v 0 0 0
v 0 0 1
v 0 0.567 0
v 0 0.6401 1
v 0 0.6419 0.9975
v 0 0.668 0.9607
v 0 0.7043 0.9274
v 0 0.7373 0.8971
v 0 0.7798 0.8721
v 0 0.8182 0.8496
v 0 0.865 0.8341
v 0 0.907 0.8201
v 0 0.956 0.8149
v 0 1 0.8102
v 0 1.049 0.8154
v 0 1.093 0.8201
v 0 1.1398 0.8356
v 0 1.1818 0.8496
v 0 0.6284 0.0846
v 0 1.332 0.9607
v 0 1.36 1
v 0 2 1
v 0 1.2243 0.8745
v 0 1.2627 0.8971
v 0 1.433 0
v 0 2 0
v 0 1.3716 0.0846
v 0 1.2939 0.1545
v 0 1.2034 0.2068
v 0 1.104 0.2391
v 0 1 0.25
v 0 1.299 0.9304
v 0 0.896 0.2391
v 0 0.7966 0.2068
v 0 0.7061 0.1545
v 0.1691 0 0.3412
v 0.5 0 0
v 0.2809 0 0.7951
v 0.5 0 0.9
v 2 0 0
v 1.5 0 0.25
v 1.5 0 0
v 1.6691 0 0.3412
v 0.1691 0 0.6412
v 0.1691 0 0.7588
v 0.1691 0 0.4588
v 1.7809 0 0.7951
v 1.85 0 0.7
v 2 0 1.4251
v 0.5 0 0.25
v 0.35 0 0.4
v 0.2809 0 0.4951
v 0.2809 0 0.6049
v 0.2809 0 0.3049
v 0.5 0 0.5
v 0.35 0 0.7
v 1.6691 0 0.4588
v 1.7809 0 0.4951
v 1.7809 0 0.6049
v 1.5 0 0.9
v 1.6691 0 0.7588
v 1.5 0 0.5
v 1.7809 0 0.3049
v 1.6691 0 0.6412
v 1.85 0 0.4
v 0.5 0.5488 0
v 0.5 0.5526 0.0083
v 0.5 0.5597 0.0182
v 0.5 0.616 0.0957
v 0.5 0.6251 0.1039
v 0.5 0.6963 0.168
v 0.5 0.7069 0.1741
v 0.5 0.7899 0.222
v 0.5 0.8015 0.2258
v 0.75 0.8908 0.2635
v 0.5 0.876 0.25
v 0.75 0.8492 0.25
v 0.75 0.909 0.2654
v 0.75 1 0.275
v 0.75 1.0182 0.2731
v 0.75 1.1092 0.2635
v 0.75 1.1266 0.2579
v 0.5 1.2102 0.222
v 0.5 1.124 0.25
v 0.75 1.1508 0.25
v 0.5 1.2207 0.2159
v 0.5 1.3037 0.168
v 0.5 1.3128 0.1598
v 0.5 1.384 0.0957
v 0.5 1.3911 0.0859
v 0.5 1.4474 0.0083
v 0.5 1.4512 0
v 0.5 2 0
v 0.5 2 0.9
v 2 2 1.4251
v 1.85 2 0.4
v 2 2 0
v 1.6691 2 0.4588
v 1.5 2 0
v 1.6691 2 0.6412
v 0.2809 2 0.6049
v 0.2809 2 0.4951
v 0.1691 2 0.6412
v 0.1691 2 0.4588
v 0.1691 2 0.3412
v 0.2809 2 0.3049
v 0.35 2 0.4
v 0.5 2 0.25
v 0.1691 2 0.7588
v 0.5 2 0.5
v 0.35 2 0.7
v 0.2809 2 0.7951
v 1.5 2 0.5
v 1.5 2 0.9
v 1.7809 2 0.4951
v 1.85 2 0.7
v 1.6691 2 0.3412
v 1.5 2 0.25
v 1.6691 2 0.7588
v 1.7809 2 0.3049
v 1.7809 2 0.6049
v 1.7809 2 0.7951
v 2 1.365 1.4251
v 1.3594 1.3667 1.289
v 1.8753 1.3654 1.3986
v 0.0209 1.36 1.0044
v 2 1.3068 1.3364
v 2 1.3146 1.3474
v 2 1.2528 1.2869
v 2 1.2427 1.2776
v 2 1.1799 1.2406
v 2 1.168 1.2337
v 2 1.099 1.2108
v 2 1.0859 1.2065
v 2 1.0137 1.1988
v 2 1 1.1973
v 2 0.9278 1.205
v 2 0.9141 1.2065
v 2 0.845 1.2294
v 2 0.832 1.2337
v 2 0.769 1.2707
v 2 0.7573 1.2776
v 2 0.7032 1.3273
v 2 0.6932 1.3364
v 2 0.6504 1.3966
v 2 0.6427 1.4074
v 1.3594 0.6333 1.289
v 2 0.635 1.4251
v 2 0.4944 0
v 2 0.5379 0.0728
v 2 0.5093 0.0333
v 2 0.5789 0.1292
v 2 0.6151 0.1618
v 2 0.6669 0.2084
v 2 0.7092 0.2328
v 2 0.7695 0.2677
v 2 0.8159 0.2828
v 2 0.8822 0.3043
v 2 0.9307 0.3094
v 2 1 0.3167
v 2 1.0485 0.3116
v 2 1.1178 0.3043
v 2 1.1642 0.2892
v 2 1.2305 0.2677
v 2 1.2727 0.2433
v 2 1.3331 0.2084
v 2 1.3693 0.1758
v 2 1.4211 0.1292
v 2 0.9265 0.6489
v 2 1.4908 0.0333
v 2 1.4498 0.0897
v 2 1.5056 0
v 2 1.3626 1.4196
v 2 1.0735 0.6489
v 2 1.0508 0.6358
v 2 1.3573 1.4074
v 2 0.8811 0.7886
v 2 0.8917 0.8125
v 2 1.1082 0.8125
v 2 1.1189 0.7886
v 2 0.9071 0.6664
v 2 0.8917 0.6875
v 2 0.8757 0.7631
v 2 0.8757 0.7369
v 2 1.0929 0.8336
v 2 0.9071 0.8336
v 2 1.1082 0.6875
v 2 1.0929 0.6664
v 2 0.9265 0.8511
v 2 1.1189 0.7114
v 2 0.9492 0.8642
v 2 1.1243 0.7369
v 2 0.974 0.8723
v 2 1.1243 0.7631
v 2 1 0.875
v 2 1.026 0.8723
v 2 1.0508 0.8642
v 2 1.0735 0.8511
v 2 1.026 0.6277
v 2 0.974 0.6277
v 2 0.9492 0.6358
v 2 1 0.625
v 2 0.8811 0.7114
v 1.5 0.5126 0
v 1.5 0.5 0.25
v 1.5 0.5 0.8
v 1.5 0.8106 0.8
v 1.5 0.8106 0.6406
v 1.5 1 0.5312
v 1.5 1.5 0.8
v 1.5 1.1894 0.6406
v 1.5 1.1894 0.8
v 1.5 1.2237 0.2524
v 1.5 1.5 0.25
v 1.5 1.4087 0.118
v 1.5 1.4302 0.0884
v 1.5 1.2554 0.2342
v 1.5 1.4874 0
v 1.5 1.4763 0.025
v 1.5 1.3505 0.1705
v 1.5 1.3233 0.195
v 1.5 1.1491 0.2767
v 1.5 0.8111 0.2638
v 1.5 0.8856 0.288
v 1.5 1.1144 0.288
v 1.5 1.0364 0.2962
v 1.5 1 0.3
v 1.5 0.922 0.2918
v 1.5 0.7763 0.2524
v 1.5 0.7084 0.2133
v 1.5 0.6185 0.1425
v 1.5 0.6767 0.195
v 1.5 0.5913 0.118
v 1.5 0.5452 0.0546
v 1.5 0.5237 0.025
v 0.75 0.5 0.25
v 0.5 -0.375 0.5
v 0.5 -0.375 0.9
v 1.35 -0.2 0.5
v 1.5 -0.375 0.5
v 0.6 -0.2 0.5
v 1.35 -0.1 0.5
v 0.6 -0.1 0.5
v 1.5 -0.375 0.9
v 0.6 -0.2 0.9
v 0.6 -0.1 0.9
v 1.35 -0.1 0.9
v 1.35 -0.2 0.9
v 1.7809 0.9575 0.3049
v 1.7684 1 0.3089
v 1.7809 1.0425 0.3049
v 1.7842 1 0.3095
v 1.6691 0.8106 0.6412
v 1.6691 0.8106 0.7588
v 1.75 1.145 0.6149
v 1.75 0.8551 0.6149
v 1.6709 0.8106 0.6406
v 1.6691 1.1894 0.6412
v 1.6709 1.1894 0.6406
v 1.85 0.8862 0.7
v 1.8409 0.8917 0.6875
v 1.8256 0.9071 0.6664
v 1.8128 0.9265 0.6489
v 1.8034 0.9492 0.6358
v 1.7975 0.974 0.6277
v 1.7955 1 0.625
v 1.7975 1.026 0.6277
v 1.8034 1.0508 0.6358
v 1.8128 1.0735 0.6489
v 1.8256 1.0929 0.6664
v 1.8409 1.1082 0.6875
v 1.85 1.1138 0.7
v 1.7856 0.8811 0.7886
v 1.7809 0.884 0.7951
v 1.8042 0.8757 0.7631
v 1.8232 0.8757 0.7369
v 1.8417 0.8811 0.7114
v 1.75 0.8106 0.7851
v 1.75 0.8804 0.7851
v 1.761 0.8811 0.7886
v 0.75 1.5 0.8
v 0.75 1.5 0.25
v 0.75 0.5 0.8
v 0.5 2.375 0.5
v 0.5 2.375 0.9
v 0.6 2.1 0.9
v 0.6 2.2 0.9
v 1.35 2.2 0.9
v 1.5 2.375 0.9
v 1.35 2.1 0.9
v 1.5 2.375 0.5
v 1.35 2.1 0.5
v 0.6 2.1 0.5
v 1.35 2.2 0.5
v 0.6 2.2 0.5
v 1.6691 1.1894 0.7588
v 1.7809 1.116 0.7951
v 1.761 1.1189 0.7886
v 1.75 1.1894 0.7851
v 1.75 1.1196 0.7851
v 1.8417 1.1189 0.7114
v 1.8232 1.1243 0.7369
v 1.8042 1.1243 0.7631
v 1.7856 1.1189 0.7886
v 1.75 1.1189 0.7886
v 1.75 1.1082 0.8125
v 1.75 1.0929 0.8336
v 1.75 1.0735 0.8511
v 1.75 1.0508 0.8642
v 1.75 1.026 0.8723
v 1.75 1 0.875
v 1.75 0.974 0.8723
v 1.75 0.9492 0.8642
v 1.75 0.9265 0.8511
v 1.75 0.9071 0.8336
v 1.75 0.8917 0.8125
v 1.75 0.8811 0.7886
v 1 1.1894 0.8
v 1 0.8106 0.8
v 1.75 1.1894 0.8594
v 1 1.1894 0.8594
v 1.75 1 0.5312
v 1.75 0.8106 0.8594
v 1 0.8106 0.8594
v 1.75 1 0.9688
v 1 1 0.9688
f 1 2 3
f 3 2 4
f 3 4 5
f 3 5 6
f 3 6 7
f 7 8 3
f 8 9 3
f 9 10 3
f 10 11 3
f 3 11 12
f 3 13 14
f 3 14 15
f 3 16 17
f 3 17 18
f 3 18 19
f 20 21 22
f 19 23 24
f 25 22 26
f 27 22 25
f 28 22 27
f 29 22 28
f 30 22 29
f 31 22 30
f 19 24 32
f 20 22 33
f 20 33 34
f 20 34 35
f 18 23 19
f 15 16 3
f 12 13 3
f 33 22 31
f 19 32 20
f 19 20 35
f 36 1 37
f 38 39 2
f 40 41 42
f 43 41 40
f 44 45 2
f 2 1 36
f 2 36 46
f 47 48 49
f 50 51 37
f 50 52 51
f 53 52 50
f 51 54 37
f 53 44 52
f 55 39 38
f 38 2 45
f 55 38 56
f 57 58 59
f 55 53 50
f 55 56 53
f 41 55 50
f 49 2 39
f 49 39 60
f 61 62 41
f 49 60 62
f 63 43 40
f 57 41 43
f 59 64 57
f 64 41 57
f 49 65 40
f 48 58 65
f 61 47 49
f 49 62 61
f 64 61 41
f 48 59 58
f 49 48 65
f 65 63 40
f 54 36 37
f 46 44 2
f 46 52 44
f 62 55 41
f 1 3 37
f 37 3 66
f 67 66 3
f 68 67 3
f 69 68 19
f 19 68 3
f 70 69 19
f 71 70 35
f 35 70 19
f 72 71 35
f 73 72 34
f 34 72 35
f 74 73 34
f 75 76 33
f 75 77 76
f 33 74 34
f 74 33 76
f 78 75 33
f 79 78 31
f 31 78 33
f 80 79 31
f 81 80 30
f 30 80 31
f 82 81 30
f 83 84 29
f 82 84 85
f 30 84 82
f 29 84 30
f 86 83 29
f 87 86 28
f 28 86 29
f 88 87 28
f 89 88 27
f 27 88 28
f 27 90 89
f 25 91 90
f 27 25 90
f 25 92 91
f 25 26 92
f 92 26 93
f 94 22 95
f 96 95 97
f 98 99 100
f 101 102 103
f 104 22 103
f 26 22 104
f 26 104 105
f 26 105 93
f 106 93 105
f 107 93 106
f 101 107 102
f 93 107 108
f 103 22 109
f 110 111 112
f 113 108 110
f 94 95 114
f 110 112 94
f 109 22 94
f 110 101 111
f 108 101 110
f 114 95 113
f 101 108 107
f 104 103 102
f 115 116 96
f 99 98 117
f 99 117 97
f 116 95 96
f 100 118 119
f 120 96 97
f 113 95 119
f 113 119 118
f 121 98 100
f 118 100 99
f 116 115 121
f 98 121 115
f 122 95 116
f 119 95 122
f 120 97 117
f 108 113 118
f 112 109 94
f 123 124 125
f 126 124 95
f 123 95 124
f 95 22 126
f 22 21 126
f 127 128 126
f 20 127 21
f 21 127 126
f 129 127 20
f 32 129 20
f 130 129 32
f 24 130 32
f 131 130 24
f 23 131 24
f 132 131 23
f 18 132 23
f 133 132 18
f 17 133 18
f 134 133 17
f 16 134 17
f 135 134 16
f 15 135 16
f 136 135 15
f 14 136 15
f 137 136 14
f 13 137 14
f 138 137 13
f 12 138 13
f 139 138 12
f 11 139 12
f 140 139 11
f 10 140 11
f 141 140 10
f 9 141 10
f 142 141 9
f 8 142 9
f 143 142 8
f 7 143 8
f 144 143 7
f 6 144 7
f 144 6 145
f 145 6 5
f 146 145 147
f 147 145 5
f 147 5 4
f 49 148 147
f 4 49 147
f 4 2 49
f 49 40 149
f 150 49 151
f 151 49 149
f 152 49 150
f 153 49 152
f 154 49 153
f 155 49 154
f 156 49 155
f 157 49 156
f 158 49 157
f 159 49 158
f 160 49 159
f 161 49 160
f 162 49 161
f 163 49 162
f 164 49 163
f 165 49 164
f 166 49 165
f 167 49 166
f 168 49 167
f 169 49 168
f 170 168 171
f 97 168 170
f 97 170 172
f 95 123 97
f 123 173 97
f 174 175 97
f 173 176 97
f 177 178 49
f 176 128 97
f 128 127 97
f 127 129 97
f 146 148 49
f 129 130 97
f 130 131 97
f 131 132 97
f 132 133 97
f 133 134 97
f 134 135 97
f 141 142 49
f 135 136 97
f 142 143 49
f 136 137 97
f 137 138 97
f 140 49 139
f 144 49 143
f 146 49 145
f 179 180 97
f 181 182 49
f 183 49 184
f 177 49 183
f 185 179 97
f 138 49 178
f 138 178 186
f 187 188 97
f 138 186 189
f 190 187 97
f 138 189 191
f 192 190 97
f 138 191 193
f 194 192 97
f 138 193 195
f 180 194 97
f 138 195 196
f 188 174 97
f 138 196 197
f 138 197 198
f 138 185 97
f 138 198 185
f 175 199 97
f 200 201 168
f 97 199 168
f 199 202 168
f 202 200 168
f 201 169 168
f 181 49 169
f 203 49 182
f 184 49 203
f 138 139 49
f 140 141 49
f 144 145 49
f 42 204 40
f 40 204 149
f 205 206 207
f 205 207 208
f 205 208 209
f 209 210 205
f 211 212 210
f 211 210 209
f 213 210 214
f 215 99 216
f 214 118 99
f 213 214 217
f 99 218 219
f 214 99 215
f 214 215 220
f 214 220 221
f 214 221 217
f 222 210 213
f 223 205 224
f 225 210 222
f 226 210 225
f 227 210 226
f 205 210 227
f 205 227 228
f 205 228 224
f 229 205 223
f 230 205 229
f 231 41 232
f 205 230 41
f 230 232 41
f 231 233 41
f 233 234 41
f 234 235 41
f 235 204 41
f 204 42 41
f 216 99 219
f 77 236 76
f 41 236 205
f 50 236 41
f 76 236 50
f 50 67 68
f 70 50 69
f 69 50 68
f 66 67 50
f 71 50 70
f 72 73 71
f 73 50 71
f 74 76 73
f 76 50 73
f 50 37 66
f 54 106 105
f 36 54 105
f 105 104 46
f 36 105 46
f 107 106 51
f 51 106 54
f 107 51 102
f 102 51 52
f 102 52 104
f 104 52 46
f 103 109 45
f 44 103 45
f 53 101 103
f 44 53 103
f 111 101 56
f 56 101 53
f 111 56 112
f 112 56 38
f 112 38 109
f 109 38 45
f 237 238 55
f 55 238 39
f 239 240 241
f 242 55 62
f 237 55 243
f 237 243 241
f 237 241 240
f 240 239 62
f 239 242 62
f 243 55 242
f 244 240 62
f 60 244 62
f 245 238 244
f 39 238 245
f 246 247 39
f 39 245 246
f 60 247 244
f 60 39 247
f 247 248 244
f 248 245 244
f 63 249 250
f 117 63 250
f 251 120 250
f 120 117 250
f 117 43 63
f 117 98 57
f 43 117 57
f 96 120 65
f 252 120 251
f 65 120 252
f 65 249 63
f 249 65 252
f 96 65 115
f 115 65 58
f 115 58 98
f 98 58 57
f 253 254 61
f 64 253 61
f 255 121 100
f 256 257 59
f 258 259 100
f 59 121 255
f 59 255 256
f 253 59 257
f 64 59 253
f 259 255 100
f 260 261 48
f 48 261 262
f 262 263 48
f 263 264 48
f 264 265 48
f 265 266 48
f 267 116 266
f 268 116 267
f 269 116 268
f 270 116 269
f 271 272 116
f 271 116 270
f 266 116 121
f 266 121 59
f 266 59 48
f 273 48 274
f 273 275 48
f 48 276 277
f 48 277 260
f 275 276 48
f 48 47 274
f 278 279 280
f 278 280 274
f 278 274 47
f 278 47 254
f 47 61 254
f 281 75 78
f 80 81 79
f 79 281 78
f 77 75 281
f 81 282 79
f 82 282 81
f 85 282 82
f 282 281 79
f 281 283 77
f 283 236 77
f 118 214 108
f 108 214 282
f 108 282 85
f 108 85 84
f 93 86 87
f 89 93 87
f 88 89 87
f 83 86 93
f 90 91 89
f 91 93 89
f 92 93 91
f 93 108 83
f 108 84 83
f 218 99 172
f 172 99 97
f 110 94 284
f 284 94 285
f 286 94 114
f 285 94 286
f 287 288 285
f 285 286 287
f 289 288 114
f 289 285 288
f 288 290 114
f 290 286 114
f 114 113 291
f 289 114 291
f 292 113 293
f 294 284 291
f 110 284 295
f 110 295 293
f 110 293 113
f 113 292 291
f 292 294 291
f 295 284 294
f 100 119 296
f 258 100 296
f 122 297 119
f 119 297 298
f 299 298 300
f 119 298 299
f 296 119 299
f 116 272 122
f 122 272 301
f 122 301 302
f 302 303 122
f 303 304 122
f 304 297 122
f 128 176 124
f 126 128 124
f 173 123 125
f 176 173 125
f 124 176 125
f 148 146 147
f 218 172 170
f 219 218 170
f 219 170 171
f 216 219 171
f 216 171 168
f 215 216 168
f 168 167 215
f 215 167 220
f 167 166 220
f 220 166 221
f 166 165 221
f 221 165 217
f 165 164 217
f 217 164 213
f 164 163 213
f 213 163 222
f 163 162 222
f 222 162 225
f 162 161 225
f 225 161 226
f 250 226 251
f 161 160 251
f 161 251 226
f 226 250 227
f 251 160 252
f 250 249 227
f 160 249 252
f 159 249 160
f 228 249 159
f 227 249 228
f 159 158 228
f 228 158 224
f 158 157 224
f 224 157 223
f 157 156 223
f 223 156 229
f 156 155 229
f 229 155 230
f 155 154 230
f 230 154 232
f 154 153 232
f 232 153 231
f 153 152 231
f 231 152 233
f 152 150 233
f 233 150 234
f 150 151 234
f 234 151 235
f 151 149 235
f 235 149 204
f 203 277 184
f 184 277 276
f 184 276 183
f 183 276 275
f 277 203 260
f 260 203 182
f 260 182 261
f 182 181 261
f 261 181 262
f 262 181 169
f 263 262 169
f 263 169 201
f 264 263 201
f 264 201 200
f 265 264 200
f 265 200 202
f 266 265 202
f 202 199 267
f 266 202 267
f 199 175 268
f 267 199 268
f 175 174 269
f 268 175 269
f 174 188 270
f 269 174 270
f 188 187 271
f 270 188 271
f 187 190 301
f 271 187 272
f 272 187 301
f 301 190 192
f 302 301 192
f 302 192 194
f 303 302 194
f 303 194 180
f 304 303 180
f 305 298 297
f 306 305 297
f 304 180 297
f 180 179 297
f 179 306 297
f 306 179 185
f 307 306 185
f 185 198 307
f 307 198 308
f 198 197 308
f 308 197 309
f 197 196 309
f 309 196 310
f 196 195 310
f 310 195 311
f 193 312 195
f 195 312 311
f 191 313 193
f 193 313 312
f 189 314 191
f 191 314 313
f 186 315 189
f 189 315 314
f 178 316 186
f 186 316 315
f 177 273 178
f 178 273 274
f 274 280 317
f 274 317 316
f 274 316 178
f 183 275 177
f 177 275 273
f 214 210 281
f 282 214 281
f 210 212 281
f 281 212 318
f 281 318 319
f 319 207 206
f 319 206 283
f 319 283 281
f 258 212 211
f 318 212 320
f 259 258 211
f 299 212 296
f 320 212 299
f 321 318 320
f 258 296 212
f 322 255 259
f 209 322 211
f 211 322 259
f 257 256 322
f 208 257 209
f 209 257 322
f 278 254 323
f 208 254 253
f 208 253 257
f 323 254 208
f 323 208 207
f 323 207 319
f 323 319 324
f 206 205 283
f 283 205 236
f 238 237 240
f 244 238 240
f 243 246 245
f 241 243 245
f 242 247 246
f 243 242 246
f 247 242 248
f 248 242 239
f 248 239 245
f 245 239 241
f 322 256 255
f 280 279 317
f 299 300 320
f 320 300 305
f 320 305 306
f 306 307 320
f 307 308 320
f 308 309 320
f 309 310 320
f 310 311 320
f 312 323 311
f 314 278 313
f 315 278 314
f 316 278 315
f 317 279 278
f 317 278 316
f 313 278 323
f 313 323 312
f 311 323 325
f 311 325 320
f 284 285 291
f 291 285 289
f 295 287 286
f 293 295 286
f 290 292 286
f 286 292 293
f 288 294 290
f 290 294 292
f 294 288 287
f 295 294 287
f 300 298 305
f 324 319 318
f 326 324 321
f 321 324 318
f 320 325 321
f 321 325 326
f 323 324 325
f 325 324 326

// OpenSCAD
// Trying to be a trekking pole camera mount
// jellsworth Dec 2014
//
// units = inches



difference() {
	union(){
		// base block
		translate([0, 0, 0]) {
			cube([ 2, 2, 1.5 ], false);
		}

		// add strap supports
		difference() {
			// add strap base
			translate( [0.5, -0.375, 0.5]) {
				cube([ 1, 2.75, 0.4]);
			}
			
			// cut strap holes
			translate([0.6, -0.2, 0]){
				cube([0.75, 0.1, 2], false);
			}
			translate([0.6, 2.1, 0]){
				cube([0.75, 0.1, 2], false);
			}
		}
	}



	// remove wedge
	translate([ 0, 0, 1]) {
		rotate([ 0, -12, 0]) {
			cube([ 3, 2, 1 ], false);
		}
	}

	// remove cross-cut
	translate([ 0.5, -0.5, 0]) {
		cube([ 1, 3, 0.25 ], false);
	}


	// remove pole channel 1
	translate([ 0, 1, -0.25]) {
		rotate([ 0, 90, 0]) {
			cylinder(h = 6, r1 = 0.5, r2 = 0.7, center = false, $fn=30);
		}
	}

	// remove pole channel 2
	translate([ -3.2, 1, 0.7]) {
		rotate([ 0, 80, 0]) {
			cylinder(h = 6, r1 = 0.5, r2 = 0.4, center = false, $fn=30);
		}
	}


	//cut hole for bolt
	//1/4" - 20 x 3/4" (w/ 7/16" head)
	translate([1, 1, 0.75]){
		rotate([0, 90, 0]){
			cylinder(h = 0.75, d=7/16, $fn=6);
			cylinder(h = 1.5, d=1/4, $fn=30);
		}
	}

	//cut bolt access
	translate([0.75, 0.5, 0]){
		cube([ 0.75, 1, 0.8]);
	}
	
	//reduce volume
	// upper block - bottom row
	translate([1.75, -0.5, 0.4]){
		vhole();
	}
	// upper block - middle row
	translate([1.75, -0.5, 0.7]){
		vhole();
	}
	// lower block - bottom row
	translate([0.25, -0.5, 0.4]){
		vhole();
	}
	// lower block - middle row
	translate([0.25, -0.5, 0.7]){
		vhole();
	}


}

module vhole() {
		rotate([-90, 0, 0]){
			cylinder(h = 3, d=0.2, $fn=5);
		}
}
